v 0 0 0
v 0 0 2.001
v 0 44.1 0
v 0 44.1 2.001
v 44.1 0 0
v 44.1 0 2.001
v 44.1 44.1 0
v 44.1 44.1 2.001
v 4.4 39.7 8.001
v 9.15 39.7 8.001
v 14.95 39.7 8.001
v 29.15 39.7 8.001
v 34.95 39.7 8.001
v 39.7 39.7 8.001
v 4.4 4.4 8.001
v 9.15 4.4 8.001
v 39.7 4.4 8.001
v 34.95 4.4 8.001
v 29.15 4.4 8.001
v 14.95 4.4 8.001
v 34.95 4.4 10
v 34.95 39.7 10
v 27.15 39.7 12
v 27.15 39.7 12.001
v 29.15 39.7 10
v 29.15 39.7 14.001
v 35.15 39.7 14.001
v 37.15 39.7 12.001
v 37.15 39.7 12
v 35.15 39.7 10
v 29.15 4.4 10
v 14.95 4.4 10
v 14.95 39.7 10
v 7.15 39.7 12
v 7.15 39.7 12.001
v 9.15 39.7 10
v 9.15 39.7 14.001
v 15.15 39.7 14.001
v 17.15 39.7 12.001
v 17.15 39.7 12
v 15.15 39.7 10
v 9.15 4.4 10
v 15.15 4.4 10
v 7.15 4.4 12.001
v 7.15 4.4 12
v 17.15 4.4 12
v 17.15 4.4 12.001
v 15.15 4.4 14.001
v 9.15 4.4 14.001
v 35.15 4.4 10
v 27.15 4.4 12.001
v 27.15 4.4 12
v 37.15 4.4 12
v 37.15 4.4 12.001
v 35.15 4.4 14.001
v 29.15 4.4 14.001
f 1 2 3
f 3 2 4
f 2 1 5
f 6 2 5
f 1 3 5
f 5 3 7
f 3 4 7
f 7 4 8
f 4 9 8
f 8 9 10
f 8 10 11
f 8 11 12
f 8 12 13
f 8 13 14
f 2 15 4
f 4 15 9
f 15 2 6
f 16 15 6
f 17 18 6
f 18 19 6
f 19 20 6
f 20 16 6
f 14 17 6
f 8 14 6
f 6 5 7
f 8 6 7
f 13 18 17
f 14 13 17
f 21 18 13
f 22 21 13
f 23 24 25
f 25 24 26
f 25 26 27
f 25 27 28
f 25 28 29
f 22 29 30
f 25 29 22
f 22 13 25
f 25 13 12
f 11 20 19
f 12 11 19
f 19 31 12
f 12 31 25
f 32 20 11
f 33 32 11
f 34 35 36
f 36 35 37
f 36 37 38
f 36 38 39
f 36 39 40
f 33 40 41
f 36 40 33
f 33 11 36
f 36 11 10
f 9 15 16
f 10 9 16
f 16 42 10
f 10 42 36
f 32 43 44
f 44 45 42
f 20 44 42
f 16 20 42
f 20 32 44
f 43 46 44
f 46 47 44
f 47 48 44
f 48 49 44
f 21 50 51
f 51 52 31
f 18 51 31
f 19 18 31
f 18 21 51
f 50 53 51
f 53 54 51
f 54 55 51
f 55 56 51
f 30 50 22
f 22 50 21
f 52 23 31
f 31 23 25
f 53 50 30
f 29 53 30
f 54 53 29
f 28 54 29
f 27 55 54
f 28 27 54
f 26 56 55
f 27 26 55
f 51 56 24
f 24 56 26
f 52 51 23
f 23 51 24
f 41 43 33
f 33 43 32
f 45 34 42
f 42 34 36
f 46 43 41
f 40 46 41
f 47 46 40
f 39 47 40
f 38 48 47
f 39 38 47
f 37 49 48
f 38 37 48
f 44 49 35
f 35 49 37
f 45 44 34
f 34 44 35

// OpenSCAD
//base_neck_w = 35.5;
base_neck_w = 35.3;
base_neck_h = 6.0;
base_h = 2.0;
//base_w = 44.3;
base_w=44.1;
accepter_wall_w = 4.0;
accepter_floor_thickness = 5.0;
bolt_head_h = 3.0;
hole_r = 3.0;
washer_r = 4.8;

full_thickness = accepter_floor_thickness+base_h+base_neck_h;

module base_plate() {
	offset = base_neck_w-base_w;
	cube([base_w, base_w, base_h]);
	translate([0,0,base_h]) {
		hull() {
			cube([base_w, base_w, 0.001]);
			translate([-offset/2, -offset/2, base_neck_h])
				cube([base_neck_w, base_neck_w, 0.001]);
		}
	}
}

module block() {
	w = base_w+accepter_wall_w*2;

	translate([-accepter_wall_w, -accepter_wall_w, -accepter_floor_thickness])
		cube([w, w, accepter_floor_thickness+base_h+base_neck_h]);
}

module b2() {
translate([0,1.65,-0.01])
scale([0.9,0.93,0.728])
minkowski() {
	block();
	rotate([45,45,0])
		cube([3,3,3]);
}
}


module accepter() {
	difference() {
		b2(); // replace with 'block();' for square
		translate([0, -base_w/4, 0])
			base_plate();
		translate([0, +base_w/4, 0])
			base_plate();

		translate([base_w/2-base_neck_w/2-1, -base_w/2, base_neck_h/2])
			cube([base_neck_w+2, base_w*2, 5]);
		
		translate([base_w/2, base_w/2, -accepter_floor_thickness]) {
			translate([0,0,-0.5])
			cylinder(r=hole_r, h=full_thickness+2, $fn=32);
			translate([0, 0, accepter_floor_thickness-bolt_head_h])
				cylinder(r=washer_r, h=bolt_head_h+0.001, $fn=32);
		}
	}
}

//accepter();

module hextube(depth=10, height=4, base=6, mid=10) {
	hull() {
		translate([0, 0, -height/2])
			cube([base, depth, 0.001]);
		translate([-(mid-base)/2, 0, 0])
			cube([mid, depth, 0.001]);
		translate([0, 0, height/2])
			cube([base, depth, 0.001]);
	}
}

alu_w = 40.5;
slot_w = 5.8;
slot_c = 10.0;

module tripodmount() {
	translate([base_w/2, (base_w-base_neck_w)/2, base_h+base_neck_h]) {
		translate([-slot_c-slot_w/2, 0, 0]) {
			cube([slot_w, base_neck_w, 2]);
			translate([0, 0, 4])
				hextube(base_neck_w);
		}

		translate([slot_c-slot_w/2, 0, 0]) {
			cube([slot_w, base_neck_w, 2]);
			translate([0, 0, 4])
				hextube(base_neck_w);
		}
	}
	base_plate();
}

tripodmount();
